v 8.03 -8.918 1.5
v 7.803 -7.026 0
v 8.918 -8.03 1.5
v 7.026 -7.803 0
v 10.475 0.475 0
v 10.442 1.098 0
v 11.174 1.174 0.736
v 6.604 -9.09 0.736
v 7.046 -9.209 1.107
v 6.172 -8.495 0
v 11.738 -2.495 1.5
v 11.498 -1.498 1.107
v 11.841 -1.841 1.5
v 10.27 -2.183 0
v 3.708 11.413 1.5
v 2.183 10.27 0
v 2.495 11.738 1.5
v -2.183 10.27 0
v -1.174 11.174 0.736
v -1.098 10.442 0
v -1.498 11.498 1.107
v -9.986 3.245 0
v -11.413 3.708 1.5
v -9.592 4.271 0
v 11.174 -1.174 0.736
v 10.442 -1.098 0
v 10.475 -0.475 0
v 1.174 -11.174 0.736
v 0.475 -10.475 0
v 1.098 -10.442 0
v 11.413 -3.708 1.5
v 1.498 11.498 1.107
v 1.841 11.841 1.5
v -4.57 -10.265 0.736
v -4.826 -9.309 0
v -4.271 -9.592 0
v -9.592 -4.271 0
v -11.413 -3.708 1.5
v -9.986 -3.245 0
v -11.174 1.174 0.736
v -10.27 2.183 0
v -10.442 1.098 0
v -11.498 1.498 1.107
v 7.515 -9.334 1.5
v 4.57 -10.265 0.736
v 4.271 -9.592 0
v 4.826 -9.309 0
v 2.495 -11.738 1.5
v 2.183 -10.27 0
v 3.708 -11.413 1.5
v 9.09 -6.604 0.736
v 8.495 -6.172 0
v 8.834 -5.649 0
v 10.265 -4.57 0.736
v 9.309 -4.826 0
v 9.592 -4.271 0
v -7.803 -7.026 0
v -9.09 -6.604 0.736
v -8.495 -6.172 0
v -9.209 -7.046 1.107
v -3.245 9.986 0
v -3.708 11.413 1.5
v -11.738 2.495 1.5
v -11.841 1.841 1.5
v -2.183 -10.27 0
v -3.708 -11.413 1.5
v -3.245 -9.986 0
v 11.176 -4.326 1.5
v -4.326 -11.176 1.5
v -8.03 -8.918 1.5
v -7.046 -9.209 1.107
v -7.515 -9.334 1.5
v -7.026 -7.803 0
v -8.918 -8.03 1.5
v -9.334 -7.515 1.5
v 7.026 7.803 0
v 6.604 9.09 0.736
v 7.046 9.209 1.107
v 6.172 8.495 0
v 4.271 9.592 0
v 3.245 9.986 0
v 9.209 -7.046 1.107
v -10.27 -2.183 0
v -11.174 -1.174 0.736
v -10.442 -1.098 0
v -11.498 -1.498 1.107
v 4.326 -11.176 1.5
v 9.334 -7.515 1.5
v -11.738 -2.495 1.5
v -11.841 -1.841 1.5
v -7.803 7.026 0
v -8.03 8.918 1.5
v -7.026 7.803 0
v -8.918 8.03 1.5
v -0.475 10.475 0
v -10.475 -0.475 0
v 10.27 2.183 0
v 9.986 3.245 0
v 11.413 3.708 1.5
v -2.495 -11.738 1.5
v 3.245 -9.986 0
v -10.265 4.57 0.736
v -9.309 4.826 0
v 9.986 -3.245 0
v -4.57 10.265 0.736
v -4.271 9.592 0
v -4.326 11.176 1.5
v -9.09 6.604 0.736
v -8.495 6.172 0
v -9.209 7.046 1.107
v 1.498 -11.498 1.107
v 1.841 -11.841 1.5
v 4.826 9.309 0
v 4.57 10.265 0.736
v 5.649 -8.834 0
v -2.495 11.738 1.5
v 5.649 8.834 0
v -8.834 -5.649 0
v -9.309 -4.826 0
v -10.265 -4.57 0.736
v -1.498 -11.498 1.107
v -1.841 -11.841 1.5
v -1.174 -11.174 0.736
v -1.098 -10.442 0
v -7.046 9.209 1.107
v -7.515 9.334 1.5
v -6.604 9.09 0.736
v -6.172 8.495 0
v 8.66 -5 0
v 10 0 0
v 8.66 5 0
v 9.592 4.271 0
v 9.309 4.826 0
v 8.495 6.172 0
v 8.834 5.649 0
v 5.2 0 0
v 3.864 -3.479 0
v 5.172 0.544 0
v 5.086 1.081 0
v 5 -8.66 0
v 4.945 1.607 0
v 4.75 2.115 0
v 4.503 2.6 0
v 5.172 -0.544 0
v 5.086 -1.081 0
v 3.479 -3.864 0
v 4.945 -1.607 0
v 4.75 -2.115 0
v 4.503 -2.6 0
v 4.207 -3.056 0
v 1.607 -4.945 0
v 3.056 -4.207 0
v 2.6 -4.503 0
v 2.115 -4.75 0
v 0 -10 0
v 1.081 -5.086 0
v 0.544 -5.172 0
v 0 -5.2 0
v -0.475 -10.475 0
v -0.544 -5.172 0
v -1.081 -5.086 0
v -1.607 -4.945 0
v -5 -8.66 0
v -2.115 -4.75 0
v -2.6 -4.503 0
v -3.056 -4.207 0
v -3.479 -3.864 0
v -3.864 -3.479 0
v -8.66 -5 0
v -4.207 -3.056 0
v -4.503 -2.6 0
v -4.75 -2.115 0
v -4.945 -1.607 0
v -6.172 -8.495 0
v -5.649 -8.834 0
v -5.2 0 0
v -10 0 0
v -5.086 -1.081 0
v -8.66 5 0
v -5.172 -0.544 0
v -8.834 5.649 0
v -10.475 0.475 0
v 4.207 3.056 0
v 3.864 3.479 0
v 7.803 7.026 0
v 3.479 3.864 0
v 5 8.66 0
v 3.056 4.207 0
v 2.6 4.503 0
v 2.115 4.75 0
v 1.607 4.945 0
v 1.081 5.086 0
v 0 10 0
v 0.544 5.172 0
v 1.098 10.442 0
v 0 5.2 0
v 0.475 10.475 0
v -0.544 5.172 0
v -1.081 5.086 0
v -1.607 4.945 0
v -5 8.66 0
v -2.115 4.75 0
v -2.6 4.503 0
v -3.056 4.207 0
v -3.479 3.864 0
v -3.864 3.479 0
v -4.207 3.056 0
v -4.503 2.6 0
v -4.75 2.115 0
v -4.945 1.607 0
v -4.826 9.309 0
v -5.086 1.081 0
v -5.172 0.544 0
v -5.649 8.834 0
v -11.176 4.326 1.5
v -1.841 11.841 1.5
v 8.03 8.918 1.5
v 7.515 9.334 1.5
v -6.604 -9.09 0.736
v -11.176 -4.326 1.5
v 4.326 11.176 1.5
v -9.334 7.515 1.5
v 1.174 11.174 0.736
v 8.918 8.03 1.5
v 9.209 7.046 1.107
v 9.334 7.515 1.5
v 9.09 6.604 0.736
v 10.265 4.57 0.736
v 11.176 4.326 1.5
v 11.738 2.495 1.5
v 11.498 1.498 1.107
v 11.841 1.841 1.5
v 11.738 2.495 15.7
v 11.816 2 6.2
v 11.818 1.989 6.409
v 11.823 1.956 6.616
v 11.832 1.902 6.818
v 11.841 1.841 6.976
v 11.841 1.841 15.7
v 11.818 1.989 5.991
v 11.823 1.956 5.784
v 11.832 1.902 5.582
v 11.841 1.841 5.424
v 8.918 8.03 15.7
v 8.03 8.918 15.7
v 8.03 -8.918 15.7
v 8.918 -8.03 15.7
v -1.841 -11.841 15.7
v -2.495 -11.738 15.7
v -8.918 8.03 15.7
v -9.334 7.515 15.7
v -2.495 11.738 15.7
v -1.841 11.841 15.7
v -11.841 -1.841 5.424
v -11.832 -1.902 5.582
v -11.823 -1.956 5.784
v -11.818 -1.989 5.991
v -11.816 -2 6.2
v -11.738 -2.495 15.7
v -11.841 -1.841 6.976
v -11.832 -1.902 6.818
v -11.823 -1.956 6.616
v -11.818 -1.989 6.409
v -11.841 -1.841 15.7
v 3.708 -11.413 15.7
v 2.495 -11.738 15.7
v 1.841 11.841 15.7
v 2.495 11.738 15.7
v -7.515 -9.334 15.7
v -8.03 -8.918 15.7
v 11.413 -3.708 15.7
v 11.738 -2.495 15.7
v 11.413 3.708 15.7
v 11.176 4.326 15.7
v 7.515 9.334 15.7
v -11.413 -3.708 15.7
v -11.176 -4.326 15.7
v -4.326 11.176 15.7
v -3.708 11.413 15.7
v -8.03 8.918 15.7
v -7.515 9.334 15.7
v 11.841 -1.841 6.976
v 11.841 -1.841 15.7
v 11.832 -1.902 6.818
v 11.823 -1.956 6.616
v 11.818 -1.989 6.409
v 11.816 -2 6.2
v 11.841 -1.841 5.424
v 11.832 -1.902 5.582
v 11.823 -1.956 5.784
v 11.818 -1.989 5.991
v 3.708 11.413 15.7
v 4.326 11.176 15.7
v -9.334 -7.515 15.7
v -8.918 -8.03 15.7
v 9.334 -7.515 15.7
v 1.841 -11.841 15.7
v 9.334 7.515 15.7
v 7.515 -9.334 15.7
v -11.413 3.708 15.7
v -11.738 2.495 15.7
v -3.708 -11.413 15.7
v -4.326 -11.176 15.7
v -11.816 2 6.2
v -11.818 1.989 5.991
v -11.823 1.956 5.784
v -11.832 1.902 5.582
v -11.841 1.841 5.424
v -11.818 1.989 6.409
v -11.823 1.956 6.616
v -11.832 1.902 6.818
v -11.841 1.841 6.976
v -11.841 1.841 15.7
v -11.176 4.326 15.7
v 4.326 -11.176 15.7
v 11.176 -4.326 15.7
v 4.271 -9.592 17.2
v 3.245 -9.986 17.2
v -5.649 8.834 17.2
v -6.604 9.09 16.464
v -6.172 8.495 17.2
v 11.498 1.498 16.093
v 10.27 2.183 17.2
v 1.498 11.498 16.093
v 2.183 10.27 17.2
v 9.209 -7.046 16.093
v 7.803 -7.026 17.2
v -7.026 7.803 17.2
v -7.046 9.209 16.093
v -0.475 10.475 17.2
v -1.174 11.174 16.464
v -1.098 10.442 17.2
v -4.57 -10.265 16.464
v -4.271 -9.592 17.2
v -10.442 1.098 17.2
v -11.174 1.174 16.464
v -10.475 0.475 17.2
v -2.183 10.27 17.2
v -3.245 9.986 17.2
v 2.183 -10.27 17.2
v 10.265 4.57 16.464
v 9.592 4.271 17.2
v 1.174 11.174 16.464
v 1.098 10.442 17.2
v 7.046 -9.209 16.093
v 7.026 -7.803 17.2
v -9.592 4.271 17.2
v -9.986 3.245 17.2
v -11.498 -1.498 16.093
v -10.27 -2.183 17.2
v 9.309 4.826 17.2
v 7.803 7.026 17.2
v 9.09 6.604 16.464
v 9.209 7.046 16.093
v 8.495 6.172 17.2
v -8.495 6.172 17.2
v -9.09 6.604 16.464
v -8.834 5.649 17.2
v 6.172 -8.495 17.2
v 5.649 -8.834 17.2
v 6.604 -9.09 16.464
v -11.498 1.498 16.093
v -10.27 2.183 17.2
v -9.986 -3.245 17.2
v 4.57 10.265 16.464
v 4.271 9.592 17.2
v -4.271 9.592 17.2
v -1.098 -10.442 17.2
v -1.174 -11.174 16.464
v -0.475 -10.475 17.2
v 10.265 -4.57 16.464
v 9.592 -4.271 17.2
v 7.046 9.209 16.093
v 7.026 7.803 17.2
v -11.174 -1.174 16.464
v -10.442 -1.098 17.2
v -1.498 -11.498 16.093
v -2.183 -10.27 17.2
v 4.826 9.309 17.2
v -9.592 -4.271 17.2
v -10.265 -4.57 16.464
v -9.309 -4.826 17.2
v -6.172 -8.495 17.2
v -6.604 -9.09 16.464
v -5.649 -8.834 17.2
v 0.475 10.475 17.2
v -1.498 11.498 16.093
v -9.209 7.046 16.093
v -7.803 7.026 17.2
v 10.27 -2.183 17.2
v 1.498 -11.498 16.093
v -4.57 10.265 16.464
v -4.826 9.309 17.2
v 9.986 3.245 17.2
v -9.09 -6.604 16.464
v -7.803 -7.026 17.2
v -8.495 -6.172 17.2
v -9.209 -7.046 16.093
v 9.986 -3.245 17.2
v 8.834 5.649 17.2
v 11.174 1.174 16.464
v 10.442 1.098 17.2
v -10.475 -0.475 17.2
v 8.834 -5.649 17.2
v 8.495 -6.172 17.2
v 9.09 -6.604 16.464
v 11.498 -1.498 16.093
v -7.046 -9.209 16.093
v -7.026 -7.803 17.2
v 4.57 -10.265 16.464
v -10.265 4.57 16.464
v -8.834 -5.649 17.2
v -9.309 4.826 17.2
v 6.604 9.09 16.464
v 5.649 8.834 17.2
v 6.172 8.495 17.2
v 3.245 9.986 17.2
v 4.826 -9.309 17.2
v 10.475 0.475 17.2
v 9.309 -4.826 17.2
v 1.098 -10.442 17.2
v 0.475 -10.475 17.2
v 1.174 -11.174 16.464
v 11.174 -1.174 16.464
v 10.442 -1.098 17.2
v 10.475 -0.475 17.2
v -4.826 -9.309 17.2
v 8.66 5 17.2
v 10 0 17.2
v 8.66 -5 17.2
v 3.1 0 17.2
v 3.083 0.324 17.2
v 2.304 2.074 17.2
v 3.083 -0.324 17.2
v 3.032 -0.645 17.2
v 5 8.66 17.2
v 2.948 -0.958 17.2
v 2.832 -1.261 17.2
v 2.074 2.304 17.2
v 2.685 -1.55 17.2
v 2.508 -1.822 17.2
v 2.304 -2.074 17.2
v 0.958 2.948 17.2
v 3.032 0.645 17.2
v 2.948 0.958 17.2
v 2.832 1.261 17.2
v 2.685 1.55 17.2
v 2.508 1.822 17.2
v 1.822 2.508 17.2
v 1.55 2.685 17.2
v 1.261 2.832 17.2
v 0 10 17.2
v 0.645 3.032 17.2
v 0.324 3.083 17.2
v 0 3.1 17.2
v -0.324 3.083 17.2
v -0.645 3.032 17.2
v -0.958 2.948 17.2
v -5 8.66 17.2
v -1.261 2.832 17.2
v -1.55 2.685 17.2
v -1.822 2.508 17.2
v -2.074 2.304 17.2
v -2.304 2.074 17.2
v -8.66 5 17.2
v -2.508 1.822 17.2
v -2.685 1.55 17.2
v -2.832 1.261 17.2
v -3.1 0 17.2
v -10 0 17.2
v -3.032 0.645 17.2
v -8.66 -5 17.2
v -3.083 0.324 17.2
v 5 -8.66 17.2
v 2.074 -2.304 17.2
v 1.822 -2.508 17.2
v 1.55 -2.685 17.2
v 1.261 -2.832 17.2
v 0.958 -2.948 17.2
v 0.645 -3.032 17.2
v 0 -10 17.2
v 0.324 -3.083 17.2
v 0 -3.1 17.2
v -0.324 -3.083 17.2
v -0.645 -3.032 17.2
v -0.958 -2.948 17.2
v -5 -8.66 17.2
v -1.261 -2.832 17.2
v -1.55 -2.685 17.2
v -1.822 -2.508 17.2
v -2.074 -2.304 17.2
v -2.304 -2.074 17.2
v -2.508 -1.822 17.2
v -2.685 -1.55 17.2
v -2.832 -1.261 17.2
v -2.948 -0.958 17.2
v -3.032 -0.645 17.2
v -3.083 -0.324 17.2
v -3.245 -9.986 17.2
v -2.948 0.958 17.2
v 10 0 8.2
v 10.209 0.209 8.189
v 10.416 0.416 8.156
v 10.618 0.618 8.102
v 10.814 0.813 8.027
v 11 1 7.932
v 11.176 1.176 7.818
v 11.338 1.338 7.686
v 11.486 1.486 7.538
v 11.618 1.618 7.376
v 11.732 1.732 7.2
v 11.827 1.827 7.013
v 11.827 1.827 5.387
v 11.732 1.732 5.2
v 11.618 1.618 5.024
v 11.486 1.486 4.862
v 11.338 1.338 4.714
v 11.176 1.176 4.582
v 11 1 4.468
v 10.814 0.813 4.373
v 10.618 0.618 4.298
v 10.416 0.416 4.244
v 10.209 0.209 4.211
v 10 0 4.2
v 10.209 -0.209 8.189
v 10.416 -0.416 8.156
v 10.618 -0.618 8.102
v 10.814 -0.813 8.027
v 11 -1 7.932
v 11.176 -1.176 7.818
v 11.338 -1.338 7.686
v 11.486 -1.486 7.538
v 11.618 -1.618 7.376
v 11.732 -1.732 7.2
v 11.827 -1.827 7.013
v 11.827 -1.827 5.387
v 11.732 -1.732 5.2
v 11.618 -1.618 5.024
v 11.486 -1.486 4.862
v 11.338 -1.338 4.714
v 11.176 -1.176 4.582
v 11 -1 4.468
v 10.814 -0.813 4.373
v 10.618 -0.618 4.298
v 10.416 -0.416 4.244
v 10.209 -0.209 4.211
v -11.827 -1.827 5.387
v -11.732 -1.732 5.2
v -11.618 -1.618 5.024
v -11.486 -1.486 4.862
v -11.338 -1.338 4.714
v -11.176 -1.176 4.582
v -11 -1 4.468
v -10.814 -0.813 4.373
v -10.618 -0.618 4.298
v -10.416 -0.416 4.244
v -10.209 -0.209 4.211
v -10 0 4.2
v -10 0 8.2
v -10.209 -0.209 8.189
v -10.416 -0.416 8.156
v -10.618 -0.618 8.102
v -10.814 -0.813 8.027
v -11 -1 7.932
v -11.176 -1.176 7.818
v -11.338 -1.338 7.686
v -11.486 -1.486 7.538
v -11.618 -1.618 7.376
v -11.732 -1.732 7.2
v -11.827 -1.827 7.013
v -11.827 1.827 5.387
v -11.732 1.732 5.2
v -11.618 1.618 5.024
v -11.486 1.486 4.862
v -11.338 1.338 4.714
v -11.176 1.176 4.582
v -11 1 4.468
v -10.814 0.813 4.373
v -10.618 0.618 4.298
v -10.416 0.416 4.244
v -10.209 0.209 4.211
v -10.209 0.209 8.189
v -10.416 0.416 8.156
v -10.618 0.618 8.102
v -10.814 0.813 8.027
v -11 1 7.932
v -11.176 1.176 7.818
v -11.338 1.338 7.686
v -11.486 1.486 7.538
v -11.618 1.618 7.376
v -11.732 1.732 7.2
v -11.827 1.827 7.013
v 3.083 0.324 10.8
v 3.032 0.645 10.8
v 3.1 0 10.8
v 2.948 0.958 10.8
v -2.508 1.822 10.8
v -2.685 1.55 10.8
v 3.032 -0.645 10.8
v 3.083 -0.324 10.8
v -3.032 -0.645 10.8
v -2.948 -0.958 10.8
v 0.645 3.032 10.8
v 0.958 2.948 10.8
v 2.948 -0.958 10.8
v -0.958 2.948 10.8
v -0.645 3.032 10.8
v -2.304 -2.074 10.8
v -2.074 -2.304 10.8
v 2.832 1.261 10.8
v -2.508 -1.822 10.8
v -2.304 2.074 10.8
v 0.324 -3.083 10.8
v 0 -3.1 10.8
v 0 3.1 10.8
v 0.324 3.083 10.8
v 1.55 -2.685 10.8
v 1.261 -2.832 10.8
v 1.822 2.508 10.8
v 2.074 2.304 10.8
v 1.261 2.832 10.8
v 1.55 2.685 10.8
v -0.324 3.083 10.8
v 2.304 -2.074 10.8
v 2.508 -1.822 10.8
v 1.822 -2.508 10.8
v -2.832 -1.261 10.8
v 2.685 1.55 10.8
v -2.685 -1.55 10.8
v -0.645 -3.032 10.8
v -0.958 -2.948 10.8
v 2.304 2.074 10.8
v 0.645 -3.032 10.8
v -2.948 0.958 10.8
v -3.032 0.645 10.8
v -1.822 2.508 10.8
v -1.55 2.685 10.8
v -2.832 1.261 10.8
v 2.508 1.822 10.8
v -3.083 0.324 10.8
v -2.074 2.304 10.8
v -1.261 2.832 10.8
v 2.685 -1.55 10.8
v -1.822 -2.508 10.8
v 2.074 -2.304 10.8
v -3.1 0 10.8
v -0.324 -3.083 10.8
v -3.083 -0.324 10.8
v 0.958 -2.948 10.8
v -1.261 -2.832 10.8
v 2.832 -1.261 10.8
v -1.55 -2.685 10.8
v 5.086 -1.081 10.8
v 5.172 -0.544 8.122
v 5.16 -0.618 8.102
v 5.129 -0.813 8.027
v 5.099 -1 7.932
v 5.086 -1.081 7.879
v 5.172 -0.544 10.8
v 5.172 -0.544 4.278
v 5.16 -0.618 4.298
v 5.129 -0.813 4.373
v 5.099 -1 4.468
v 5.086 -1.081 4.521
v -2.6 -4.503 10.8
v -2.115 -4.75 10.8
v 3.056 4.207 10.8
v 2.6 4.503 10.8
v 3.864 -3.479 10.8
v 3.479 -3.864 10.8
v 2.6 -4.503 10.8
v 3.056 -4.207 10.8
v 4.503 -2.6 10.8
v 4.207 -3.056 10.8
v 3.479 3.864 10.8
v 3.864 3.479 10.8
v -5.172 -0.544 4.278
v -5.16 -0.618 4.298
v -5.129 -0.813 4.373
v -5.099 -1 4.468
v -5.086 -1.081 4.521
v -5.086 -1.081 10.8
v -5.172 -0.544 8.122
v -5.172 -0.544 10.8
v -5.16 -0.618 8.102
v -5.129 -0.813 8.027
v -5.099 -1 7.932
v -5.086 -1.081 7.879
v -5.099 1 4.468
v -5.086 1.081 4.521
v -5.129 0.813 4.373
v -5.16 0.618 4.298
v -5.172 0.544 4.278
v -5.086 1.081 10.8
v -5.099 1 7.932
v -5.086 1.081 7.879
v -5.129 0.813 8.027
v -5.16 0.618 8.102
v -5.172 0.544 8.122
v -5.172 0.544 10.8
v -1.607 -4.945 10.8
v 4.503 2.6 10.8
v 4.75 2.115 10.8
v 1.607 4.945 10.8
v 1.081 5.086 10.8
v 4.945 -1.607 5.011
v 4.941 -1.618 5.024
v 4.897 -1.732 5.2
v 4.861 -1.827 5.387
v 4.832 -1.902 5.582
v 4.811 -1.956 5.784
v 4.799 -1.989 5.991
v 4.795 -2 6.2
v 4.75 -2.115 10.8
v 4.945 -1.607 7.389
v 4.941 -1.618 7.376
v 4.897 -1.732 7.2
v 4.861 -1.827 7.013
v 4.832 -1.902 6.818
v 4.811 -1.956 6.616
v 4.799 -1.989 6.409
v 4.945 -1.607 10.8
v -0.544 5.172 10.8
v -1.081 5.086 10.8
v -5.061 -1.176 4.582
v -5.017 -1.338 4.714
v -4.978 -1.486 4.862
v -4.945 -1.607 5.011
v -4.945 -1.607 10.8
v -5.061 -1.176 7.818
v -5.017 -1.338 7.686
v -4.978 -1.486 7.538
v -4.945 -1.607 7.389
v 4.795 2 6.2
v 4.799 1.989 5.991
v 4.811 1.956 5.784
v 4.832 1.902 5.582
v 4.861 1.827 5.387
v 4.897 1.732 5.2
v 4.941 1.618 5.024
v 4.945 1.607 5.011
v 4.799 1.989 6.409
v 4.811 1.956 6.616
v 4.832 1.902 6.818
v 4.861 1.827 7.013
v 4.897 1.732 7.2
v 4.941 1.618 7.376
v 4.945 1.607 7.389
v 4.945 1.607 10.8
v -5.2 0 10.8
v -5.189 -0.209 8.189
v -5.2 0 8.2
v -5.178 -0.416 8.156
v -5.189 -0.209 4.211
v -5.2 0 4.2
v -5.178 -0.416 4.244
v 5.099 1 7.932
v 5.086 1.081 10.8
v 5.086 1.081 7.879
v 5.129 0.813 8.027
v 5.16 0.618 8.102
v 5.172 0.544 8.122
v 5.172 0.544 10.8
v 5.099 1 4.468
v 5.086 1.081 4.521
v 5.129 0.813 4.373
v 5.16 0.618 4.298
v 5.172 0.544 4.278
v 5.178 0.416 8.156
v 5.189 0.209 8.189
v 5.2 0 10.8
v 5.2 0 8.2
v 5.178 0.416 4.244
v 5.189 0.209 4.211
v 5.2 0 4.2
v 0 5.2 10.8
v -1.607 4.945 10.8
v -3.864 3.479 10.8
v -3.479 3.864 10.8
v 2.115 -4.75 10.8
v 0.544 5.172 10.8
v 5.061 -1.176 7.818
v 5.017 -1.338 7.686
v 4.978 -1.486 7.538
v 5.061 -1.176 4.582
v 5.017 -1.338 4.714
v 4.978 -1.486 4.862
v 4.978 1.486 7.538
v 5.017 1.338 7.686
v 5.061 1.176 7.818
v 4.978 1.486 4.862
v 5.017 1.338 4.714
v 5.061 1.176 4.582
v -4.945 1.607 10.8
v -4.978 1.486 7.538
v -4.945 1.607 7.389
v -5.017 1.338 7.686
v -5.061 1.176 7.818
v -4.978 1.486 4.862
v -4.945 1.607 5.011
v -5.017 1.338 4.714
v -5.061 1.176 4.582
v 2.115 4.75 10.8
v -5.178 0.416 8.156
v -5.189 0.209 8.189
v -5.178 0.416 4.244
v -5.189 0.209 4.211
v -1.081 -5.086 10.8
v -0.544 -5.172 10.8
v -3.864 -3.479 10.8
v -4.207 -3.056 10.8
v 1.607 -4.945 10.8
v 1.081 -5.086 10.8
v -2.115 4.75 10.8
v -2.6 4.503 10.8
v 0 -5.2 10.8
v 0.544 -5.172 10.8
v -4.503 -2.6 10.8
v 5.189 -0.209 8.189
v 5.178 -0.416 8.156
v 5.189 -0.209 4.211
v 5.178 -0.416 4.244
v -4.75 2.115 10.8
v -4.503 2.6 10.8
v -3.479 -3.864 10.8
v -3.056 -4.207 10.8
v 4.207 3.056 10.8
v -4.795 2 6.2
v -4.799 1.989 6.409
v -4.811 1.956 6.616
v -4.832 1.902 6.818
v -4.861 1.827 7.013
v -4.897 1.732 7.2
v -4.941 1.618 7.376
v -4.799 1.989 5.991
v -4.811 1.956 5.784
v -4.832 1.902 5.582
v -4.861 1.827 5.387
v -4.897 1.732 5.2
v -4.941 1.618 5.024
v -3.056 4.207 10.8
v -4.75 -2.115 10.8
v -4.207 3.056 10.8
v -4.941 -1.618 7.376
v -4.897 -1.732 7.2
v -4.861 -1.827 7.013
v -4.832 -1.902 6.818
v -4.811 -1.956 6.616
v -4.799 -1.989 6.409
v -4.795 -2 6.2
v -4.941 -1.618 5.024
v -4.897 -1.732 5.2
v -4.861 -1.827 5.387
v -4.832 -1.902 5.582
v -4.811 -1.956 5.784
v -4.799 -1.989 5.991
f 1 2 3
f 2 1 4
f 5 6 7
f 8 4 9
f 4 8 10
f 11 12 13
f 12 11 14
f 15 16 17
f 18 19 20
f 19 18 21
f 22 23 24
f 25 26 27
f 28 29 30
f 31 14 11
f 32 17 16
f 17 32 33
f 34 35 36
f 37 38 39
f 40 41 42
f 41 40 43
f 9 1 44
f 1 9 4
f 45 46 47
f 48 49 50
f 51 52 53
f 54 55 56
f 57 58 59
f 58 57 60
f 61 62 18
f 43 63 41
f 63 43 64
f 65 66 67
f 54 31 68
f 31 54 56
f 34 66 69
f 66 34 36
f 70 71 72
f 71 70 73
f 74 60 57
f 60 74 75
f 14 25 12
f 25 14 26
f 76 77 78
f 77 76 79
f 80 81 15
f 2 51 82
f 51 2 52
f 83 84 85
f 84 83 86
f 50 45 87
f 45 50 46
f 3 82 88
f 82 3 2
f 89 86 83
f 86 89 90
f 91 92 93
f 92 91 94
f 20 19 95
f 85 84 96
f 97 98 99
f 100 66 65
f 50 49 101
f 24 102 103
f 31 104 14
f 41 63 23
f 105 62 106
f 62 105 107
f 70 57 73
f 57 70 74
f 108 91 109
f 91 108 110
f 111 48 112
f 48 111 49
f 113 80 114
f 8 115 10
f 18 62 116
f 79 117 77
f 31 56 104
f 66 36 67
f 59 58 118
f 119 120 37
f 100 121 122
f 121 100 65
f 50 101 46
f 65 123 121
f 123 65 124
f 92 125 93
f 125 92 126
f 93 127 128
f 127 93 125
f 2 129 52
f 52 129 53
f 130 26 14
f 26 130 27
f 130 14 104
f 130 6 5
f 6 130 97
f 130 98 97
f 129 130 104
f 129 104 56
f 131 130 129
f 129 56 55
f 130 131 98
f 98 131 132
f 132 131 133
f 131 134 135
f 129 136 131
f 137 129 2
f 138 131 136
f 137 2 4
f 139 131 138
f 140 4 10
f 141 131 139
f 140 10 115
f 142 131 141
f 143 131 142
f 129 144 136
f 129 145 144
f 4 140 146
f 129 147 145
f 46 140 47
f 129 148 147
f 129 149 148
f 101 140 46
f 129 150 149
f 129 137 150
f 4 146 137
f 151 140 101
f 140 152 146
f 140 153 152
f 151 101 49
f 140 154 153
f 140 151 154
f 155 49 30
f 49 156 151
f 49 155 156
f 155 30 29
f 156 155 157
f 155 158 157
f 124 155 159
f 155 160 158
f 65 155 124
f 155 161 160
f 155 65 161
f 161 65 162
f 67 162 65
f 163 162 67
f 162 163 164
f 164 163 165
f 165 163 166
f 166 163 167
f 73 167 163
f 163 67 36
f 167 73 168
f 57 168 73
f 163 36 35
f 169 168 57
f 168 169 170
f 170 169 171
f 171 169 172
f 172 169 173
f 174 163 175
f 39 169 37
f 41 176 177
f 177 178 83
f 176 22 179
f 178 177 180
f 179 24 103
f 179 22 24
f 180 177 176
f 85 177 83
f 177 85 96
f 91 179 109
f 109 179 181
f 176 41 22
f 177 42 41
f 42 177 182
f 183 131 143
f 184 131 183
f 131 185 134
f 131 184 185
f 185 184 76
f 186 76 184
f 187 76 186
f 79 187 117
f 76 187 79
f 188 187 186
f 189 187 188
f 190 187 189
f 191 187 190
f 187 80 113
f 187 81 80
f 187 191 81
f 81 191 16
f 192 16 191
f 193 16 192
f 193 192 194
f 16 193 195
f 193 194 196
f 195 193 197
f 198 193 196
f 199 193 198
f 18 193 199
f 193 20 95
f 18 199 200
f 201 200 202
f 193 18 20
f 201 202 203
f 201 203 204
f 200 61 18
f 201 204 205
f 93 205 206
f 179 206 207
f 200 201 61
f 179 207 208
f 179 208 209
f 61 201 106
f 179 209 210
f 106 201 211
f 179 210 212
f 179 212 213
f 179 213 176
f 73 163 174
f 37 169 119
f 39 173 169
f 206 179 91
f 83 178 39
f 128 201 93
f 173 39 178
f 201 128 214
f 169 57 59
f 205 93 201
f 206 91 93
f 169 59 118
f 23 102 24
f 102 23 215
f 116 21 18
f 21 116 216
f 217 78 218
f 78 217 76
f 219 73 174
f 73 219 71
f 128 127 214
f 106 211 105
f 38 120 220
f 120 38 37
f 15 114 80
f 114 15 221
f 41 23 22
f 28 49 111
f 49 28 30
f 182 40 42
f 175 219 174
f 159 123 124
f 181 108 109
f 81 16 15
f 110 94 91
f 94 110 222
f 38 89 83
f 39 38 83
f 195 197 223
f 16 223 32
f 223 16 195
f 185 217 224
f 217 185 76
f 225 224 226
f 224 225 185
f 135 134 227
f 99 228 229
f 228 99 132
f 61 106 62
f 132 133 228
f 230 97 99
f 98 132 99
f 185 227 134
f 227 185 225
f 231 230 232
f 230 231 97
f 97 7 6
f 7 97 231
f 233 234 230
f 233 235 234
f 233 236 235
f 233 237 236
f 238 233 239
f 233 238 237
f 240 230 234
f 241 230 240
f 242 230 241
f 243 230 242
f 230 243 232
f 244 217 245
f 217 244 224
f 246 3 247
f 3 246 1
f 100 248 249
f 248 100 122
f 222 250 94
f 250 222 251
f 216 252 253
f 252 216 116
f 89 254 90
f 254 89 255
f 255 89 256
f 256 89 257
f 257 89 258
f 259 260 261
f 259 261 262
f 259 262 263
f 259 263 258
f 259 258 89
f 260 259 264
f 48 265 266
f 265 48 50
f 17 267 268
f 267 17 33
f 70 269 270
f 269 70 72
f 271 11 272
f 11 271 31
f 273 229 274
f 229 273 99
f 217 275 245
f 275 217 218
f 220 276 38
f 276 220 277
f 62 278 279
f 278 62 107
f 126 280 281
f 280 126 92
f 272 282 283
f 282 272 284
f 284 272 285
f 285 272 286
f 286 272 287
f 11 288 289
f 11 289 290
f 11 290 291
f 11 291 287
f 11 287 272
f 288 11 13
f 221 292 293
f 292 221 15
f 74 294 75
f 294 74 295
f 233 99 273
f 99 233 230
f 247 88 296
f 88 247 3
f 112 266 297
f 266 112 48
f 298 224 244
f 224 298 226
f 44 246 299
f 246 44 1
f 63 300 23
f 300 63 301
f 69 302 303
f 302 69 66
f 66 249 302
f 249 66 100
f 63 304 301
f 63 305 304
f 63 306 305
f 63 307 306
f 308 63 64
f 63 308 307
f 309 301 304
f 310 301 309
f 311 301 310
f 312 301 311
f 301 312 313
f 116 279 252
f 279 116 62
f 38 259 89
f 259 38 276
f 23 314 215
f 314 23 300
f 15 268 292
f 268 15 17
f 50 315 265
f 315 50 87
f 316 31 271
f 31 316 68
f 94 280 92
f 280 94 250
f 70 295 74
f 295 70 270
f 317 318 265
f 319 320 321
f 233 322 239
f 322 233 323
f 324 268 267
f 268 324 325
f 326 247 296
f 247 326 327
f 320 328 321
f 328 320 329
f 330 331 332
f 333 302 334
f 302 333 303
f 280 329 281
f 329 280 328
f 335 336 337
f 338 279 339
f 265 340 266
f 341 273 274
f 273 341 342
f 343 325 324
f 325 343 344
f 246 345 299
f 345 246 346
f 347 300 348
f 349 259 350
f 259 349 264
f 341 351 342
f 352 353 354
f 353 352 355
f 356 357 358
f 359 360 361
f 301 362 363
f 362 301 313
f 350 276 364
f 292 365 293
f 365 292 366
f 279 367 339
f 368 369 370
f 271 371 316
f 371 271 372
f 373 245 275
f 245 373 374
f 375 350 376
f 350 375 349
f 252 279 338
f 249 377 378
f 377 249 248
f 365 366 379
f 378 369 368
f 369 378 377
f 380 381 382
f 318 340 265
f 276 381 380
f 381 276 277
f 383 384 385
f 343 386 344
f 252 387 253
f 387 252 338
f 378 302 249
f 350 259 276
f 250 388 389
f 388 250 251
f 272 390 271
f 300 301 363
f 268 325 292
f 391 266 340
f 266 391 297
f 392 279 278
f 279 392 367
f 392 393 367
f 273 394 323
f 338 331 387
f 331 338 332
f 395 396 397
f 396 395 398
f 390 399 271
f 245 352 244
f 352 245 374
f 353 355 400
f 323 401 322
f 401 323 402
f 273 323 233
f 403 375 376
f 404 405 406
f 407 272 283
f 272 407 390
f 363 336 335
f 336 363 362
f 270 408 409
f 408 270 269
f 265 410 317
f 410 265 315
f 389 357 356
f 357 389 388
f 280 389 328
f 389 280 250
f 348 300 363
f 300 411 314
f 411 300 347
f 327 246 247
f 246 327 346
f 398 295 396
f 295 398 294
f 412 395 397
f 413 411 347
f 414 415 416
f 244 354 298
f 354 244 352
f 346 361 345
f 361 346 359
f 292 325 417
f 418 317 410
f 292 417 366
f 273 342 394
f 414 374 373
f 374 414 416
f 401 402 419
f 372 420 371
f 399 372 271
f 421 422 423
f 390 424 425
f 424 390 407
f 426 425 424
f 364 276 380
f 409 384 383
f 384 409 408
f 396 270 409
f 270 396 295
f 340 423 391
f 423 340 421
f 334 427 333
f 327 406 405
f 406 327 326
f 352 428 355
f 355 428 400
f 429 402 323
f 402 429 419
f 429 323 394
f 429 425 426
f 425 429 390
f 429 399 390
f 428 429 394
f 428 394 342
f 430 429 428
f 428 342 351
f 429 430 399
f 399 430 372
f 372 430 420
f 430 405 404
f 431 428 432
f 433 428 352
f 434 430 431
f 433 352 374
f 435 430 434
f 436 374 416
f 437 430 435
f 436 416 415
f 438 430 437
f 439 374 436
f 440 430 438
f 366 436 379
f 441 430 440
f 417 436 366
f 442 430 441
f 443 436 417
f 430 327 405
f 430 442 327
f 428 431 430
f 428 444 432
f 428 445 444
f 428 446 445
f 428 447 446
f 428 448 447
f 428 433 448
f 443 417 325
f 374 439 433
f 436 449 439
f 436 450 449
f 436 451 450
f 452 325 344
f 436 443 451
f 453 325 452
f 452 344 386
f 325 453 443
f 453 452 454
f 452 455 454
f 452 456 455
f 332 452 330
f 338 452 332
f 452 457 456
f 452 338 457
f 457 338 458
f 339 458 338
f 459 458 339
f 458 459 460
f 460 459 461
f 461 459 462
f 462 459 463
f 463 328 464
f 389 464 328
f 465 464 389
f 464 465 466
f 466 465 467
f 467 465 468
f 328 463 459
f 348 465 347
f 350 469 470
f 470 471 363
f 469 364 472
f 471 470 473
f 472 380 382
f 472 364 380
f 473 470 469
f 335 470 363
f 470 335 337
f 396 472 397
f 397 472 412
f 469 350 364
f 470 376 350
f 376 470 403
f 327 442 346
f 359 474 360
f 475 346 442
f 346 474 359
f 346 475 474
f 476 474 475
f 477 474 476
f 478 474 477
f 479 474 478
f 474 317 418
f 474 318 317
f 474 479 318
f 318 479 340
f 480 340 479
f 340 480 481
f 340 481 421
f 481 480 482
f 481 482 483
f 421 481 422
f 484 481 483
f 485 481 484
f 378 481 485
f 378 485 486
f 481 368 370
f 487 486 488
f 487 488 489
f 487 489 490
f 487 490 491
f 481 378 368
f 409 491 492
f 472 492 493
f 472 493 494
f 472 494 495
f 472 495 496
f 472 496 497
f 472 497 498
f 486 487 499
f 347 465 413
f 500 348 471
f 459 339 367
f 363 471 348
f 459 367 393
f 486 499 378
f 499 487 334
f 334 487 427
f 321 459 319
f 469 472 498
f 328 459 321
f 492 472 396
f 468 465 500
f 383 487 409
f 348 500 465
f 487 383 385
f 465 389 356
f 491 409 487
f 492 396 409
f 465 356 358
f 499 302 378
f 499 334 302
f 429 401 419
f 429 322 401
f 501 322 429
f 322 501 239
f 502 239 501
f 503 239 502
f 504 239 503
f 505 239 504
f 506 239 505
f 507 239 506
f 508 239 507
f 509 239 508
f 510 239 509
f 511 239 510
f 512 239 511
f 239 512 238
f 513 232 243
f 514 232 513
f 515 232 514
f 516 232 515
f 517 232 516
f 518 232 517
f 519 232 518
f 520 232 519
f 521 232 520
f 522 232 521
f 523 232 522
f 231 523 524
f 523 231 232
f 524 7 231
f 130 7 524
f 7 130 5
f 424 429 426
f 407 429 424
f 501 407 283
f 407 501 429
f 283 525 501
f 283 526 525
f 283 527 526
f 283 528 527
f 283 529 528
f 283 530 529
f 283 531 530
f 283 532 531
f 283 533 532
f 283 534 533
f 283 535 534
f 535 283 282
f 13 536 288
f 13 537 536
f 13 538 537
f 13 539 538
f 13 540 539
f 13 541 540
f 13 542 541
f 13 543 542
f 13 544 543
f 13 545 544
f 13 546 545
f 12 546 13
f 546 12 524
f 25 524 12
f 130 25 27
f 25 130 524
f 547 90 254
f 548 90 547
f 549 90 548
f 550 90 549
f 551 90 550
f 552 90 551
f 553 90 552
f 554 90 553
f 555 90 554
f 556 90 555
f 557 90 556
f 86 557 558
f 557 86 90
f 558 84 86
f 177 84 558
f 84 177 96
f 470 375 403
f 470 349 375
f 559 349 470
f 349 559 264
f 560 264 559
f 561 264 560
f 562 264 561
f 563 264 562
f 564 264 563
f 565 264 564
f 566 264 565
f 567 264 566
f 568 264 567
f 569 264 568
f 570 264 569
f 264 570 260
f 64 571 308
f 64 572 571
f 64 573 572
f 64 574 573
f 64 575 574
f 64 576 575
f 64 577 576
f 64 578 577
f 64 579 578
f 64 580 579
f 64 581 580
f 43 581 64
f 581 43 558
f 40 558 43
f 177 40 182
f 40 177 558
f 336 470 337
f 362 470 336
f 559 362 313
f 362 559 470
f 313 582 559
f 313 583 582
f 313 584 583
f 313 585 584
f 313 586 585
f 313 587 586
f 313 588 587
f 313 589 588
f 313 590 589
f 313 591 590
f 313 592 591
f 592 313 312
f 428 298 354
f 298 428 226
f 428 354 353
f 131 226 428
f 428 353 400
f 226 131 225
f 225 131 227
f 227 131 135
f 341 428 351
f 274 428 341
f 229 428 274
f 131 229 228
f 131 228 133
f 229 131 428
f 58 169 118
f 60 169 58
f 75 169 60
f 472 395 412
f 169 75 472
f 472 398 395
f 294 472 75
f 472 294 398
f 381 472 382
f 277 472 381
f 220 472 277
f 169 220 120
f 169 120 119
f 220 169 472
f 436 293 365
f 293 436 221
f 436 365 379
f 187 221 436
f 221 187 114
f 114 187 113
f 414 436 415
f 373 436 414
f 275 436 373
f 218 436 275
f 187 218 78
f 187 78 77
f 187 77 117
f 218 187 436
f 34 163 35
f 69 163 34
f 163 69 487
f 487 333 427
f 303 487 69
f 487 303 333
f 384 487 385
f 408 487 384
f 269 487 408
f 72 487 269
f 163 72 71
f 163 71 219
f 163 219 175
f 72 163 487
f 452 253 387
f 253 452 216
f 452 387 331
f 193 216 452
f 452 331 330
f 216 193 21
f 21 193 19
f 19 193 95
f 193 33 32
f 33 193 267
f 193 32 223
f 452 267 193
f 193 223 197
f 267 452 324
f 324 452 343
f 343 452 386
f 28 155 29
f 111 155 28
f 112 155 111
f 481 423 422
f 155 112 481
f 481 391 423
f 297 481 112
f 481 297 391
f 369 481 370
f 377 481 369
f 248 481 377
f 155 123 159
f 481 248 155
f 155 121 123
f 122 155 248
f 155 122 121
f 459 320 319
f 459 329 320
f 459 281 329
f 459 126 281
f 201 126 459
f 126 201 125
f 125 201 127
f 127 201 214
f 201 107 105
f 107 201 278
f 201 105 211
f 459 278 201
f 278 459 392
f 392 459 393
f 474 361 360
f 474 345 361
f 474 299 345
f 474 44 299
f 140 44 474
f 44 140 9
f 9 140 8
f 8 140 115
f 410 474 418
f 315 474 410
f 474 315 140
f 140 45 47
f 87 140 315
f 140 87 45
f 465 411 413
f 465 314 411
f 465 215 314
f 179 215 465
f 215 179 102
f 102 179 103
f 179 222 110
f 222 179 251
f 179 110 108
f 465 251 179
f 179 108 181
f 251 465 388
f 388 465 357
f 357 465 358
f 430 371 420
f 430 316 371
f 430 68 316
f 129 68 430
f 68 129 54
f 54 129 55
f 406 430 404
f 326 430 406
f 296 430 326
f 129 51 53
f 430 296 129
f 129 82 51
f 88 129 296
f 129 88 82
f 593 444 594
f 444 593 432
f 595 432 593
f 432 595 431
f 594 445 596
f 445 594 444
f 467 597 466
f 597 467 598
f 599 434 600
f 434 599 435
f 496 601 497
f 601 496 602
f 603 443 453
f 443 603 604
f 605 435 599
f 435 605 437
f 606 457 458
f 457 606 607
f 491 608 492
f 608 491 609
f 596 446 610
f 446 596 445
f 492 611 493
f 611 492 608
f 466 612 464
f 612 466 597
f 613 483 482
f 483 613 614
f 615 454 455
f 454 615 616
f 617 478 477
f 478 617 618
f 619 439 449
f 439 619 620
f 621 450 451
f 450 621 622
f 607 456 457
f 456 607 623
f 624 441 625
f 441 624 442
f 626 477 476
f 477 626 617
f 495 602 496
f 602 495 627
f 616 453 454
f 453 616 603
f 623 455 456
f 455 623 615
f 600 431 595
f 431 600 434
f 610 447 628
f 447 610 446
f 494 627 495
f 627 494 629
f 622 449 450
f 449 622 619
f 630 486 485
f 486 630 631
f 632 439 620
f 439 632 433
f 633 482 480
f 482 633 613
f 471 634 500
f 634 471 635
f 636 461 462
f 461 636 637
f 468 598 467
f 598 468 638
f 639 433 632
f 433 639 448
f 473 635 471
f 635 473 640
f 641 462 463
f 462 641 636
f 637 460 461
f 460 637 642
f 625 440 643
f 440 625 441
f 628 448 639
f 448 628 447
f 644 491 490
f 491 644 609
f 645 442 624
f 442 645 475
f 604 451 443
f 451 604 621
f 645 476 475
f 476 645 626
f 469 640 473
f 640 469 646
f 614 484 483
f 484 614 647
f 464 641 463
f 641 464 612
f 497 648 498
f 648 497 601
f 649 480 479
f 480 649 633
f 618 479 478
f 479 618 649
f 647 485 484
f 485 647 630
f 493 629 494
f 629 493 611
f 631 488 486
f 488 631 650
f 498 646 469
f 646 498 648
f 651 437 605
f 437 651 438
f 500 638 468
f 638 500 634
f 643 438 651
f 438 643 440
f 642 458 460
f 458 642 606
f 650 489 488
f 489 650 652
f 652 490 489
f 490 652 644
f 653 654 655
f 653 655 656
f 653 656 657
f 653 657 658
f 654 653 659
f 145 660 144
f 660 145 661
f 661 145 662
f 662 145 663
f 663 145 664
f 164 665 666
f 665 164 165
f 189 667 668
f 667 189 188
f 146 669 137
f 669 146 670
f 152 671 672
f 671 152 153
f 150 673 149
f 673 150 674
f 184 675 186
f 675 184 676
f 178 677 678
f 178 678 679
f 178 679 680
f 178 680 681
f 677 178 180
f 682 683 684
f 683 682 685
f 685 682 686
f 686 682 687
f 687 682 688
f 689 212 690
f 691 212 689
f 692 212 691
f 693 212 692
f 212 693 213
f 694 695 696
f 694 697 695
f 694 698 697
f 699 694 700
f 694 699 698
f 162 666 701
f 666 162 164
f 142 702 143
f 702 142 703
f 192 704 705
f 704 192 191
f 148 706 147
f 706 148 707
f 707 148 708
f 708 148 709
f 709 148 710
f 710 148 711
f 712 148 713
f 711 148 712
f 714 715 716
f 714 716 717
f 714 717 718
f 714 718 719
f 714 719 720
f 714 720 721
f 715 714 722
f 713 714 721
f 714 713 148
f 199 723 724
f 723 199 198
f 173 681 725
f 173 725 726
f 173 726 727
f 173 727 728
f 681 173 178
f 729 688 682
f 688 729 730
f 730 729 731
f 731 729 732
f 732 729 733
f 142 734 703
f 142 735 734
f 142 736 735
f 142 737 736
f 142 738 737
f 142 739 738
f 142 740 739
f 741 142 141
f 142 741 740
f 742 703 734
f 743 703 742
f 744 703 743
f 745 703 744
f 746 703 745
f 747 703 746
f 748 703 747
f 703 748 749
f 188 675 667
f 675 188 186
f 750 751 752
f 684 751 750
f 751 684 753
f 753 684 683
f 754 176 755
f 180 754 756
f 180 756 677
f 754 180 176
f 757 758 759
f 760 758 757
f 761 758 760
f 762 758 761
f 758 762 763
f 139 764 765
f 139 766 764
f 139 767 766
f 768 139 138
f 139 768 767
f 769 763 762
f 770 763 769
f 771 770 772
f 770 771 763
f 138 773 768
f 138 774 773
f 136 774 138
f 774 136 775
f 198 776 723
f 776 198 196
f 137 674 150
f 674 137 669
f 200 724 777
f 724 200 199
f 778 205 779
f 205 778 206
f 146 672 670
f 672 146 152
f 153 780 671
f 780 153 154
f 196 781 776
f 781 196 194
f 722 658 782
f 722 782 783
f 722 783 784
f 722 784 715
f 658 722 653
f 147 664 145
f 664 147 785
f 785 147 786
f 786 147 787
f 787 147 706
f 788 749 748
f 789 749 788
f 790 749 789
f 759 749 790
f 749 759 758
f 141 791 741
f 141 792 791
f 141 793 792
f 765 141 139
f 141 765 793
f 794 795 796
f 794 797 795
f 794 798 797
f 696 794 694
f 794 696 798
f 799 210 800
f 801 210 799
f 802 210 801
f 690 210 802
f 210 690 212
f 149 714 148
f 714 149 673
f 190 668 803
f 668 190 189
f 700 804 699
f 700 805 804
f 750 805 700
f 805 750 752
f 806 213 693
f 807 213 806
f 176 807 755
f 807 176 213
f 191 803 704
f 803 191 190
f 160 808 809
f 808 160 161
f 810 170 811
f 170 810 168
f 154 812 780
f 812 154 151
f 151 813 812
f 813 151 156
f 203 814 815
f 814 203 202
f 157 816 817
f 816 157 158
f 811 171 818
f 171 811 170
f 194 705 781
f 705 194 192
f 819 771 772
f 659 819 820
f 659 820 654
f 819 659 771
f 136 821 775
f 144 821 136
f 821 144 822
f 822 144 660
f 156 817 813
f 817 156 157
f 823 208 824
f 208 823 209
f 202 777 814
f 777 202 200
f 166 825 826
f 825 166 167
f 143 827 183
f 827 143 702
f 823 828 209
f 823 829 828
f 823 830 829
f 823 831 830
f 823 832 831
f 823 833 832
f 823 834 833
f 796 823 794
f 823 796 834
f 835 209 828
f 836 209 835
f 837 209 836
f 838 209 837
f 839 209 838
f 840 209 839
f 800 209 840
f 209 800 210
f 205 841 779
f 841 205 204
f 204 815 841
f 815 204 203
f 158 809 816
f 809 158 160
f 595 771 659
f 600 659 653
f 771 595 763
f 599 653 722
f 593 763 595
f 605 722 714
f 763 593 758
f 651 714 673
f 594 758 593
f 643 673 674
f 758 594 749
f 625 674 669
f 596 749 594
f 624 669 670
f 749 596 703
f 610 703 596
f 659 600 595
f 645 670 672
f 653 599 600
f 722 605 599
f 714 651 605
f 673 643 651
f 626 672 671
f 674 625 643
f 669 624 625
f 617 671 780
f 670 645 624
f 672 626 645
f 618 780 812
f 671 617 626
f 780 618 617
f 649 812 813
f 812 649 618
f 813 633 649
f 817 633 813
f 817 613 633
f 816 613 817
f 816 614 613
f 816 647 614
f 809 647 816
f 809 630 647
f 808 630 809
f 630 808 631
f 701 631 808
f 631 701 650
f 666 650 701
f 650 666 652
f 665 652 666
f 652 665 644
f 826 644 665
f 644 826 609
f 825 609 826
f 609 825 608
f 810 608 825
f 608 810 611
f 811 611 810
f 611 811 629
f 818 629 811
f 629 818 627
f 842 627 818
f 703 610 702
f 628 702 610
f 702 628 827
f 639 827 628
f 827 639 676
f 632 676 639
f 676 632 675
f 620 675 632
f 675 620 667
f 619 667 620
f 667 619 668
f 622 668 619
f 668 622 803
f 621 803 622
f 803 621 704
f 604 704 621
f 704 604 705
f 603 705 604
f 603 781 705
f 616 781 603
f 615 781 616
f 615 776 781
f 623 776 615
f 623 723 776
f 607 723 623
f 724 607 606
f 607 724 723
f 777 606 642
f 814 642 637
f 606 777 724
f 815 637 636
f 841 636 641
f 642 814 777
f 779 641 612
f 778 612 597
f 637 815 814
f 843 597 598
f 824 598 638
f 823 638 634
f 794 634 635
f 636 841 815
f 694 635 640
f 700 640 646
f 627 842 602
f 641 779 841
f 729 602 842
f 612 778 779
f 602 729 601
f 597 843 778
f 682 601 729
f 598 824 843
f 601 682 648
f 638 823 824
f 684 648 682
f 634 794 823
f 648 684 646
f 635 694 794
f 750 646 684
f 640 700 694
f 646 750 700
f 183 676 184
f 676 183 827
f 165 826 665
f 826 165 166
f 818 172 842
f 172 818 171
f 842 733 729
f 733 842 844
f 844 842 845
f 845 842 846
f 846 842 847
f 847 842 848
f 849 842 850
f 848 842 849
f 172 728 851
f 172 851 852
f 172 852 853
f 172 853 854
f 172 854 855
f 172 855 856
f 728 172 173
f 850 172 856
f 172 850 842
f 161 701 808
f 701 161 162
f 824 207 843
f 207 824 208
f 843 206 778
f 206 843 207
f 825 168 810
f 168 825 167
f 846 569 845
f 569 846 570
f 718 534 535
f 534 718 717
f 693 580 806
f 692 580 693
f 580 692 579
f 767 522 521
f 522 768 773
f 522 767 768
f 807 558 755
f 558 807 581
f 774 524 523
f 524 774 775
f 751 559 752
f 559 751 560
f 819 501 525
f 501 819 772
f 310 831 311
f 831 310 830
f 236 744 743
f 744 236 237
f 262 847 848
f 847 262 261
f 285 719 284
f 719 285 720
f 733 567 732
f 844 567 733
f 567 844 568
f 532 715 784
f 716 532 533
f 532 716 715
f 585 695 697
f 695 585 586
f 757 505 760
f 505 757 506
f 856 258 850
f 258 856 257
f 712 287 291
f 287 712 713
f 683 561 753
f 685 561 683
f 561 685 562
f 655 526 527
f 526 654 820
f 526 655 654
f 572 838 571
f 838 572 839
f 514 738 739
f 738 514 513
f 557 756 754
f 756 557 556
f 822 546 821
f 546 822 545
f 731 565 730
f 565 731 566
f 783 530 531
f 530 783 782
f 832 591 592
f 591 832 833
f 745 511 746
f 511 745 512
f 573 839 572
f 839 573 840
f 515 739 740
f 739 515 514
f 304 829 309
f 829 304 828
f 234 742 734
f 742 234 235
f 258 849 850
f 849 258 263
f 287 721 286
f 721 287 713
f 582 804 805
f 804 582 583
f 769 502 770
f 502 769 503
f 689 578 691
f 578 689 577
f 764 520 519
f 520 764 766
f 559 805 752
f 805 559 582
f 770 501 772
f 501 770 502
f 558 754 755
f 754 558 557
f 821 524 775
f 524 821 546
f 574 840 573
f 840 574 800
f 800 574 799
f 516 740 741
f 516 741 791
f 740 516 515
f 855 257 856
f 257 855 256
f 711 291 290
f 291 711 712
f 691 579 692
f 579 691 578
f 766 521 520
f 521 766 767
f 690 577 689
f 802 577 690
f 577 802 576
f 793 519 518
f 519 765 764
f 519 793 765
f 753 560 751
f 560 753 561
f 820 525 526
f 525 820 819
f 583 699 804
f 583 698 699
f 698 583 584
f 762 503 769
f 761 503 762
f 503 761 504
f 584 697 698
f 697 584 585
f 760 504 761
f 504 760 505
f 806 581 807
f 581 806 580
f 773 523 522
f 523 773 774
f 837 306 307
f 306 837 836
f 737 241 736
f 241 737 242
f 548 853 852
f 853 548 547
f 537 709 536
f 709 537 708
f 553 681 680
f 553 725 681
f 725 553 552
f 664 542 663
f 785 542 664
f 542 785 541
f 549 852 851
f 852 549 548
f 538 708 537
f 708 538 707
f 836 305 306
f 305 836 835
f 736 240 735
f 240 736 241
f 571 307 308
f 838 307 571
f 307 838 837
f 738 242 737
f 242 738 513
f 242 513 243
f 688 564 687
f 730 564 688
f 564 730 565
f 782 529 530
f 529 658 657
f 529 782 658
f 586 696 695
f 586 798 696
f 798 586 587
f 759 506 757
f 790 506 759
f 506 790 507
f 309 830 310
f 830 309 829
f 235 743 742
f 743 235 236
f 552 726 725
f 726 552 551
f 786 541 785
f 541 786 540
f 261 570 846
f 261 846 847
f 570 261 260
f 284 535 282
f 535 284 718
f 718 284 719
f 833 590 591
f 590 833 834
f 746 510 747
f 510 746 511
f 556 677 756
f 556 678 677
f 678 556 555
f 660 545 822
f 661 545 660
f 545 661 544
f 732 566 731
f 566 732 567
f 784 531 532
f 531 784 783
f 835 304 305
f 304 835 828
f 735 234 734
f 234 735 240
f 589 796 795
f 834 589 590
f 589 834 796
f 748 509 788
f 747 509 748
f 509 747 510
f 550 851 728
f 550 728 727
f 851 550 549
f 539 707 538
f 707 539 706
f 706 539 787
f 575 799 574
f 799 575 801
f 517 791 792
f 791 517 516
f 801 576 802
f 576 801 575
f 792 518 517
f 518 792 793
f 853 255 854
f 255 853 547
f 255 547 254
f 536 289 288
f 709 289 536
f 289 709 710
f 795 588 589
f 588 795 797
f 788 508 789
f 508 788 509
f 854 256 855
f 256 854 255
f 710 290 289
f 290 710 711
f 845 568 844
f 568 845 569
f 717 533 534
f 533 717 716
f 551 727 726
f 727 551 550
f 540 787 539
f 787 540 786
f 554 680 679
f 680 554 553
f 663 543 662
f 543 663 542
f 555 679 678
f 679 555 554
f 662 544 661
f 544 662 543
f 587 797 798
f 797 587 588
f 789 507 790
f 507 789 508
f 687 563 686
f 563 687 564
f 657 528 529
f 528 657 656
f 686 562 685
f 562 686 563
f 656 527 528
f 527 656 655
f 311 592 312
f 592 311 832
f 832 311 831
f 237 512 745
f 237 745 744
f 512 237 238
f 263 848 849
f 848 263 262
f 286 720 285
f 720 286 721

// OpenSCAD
$fn=60;

vFocusWheel_d = 24;
vFocusWheel_h = 17.2;
vThread_d = 6.2;
vThread_h = vFocusWheel_h;

vThreadNut_d = 10.4;
vThreadNut_h = 10.8;
vThreadNut_offsetZ = 0;

vEdgecut = 1.5;


vLowerSegment_d1 = vFocusWheel_d - 2*vEdgecut;
vLowerSegment_d2 = vFocusWheel_d;
vLowerSegment_h = vEdgecut;
vLowerSegment_offsetZ = 0;

vMidSegment_d = vFocusWheel_d;
vMidSegment_h = vFocusWheel_h - 2*vEdgecut;
vMidSegment_offsetZ = vLowerSegment_h;

vUpperSegment_d1 = vFocusWheel_d;
vUpperSegment_d2 = vFocusWheel_d - 2*vEdgecut;
vUpperSegment_h = vEdgecut;
vUpperSegment_offsetZ = vLowerSegment_h+vMidSegment_h;

vLockingScrewHole_d = 4;
vLockingScrewHole_h = vFocusWheel_d;
vLockingScrewHole_offsetX = -vFocusWheel_d/2;
vLockingScrewHole_offsetZ = vFocusWheel_h-11;

vCutout_l = vFocusWheel_h;
vCutout_w = 4;
vCutout_h = 2;
vCutout_offsetX = vFocusWheel_d/2;
vCutout_offsetY = -vCutout_w/2;
vCutout_offsetZ = 0;


module roof(l, w, h){
    polyhedron(
        points=[
            [0,0,0],
            [l,0,0],
            [l,w,0],
            [0,w,0],
            [0,w/2,h],
            [l,w/2,h]
            ],
        faces=[
            [0,1,2,3],
            [0,4,1],
            [1,4,5,2],
            [2,5,3],
            [3,5,4,0]
            ]
            );
    };

//roof(20, 10, 15);

module wedge(l, w, h) {
    polyhedron(
            points=[
                [0,0,0],
                [l,0,0],
                [0,w,0],
                [0,0,h],
                [l,0,h],
                [0,w,h]
            ],
            faces=[
                [0,1,2],
                [0,3,4,1],
                [1,4,5,2],
                [2,5,3,0],
                [3,5,4]
            ]
    );
   };    
//wedge(20, 30, 40);

module tube(d1, d2, h) {
    difference() {
        cylinder(d=d1, h=h);
        cylinder(d=d2, h=h);
        }
    };
    



difference(){
    union(){
        cylinder(d1=vLowerSegment_d1, d2=vLowerSegment_d2, h=vLowerSegment_h);

        translate([0, 0, vMidSegment_offsetZ])
        cylinder(d=vMidSegment_d, h=vMidSegment_h);   
           
        translate([0, 0, vUpperSegment_offsetZ])   
        cylinder(d1=vUpperSegment_d1, d2=vUpperSegment_d2, h=vUpperSegment_h); 
    };    
    
    // thread hole
    cylinder(d=vThread_d, h=vThread_h);
    
    // thread nut hole
    translate([0, 0, vThreadNut_offsetZ])
        cylinder(d=vThreadNut_d, h=vThreadNut_h);
    
   
    
    // locking screw hole
    translate([vLockingScrewHole_offsetX, 0, vLockingScrewHole_offsetZ])
        rotate([0,90, 0])
            cylinder(d=vLockingScrewHole_d, h=vLockingScrewHole_h);
    
    
    for (i=[0:5]){
    rotate([0, 0, i*30])    
        union(){
        translate([vCutout_offsetX, vCutout_offsetY, vCutout_offsetZ])
            rotate([0, 270, 0])
                roof(vCutout_l, vCutout_w, vCutout_h);

        translate([-vCutout_offsetX, vCutout_offsetY, vCutout_offsetZ])
            rotate([0, 270, 0])
                roof(vCutout_l, vCutout_w, -vCutout_h);
        };
    };
    

};
